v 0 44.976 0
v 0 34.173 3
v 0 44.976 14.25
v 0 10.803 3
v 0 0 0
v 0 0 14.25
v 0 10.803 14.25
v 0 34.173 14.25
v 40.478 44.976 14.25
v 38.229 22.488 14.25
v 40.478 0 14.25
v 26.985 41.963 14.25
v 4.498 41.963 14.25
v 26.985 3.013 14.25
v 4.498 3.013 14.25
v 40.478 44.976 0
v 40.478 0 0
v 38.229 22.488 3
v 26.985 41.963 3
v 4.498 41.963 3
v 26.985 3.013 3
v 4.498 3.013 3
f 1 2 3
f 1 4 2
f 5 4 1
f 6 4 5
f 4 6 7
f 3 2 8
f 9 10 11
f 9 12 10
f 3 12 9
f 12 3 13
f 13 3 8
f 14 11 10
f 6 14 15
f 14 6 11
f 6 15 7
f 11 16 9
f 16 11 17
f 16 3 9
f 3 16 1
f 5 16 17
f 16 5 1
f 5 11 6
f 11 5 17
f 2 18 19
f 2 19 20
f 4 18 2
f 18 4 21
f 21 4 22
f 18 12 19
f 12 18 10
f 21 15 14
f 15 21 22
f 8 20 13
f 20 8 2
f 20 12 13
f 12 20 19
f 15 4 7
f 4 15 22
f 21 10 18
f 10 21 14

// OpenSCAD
// file: HexPileLib.scad
module LeftPile(totalHeight, singlePileHeight, singlePileDiameter, pileCount){
    pileHeight = (pileCount * singlePileHeight) + .5;
    offset = singlePileDiameter * .15;
    translate([singlePileDiameter/2 - offset, singlePileDiameter/2, totalHeight - pileHeight])
        cylinder(pileHeight, d=singlePileDiameter, $fn=6);
}

module RightPile(totalHeight, singlePileHeight, singlePileDiameter, pileCount){
    translate([0, singlePileDiameter, 0])
        rotate([0, 0, 180])
            LeftPile(totalHeight, singlePileHeight, singlePileDiameter, pileCount);
}

module BottomPile(totalHeight, singlePileHeight, singlePileDiameter, pileCount){
    translate([singlePileDiameter, 0, 0])
        rotate([0, 0, 90])
            LeftPile(totalHeight, singlePileHeight, singlePileDiameter, pileCount);
}

module TopPile(totalHeight, singlePileHeight, singlePileDiameter, pileCount){
        rotate([0, 0, 270])
            LeftPile(totalHeight, singlePileHeight, singlePileDiameter, pileCount);
}
// file: ColonistsPlacePileLib.scad
include<HexPileLib.scad>
//25.82 by 32.82 by 2.15
singlePlacePileHeight = 2.15;
//flat to flat = d = 38.15
//D = d * 2/rt(3)
d = 38.15 + .8;
D = d * 2/sqrt(3);
singlePlacePileDiameter = D;

module LeftPlacePile(totalHeight, placePileCount){
    LeftPile(
        totalHeight,
        singlePlacePileHeight,
        singlePlacePileDiameter,
        placePileCount);
}

module RightPlacePile(totalHeight, placePileCount){
    RightPile(
        totalHeight,
        singlePlacePileHeight,
        singlePlacePileDiameter,
        placePileCount);
}

module BottomPlacePile(totalHeight, placePileCount){
    BottomPile(
        totalHeight,
        singlePlacePileHeight,
        singlePlacePileDiameter,
        placePileCount);
}

module TopPlacePile(totalHeight, placePileCount){
    TopPile(
        totalHeight,
        singlePlacePileHeight,
        singlePlacePileDiameter,
        placePileCount);
}

function placePileHeight(placePileCount) =
    (placePileCount * singlePlacePileHeight) + .5;

function actualPlacePileWidth() = singlePlacePileDiameter * .85;
    
// main file
include<ColonistsPlacePileLib.scad>

magnetBaseInnerDiameter = 15.4;
magnetHeight = 4.0;
floorHeight = 3;
tileCount = 5;
height = placePileHeight(tileCount) + floorHeight;
length = singlePlacePileDiameter * .9;
width = singlePlacePileDiameter;
wallThickness = 3;

difference() {
    
    cube([length, width, height]);
    translate([0, 0, 0])
        LeftPlacePile(height, tileCount);
    
}
